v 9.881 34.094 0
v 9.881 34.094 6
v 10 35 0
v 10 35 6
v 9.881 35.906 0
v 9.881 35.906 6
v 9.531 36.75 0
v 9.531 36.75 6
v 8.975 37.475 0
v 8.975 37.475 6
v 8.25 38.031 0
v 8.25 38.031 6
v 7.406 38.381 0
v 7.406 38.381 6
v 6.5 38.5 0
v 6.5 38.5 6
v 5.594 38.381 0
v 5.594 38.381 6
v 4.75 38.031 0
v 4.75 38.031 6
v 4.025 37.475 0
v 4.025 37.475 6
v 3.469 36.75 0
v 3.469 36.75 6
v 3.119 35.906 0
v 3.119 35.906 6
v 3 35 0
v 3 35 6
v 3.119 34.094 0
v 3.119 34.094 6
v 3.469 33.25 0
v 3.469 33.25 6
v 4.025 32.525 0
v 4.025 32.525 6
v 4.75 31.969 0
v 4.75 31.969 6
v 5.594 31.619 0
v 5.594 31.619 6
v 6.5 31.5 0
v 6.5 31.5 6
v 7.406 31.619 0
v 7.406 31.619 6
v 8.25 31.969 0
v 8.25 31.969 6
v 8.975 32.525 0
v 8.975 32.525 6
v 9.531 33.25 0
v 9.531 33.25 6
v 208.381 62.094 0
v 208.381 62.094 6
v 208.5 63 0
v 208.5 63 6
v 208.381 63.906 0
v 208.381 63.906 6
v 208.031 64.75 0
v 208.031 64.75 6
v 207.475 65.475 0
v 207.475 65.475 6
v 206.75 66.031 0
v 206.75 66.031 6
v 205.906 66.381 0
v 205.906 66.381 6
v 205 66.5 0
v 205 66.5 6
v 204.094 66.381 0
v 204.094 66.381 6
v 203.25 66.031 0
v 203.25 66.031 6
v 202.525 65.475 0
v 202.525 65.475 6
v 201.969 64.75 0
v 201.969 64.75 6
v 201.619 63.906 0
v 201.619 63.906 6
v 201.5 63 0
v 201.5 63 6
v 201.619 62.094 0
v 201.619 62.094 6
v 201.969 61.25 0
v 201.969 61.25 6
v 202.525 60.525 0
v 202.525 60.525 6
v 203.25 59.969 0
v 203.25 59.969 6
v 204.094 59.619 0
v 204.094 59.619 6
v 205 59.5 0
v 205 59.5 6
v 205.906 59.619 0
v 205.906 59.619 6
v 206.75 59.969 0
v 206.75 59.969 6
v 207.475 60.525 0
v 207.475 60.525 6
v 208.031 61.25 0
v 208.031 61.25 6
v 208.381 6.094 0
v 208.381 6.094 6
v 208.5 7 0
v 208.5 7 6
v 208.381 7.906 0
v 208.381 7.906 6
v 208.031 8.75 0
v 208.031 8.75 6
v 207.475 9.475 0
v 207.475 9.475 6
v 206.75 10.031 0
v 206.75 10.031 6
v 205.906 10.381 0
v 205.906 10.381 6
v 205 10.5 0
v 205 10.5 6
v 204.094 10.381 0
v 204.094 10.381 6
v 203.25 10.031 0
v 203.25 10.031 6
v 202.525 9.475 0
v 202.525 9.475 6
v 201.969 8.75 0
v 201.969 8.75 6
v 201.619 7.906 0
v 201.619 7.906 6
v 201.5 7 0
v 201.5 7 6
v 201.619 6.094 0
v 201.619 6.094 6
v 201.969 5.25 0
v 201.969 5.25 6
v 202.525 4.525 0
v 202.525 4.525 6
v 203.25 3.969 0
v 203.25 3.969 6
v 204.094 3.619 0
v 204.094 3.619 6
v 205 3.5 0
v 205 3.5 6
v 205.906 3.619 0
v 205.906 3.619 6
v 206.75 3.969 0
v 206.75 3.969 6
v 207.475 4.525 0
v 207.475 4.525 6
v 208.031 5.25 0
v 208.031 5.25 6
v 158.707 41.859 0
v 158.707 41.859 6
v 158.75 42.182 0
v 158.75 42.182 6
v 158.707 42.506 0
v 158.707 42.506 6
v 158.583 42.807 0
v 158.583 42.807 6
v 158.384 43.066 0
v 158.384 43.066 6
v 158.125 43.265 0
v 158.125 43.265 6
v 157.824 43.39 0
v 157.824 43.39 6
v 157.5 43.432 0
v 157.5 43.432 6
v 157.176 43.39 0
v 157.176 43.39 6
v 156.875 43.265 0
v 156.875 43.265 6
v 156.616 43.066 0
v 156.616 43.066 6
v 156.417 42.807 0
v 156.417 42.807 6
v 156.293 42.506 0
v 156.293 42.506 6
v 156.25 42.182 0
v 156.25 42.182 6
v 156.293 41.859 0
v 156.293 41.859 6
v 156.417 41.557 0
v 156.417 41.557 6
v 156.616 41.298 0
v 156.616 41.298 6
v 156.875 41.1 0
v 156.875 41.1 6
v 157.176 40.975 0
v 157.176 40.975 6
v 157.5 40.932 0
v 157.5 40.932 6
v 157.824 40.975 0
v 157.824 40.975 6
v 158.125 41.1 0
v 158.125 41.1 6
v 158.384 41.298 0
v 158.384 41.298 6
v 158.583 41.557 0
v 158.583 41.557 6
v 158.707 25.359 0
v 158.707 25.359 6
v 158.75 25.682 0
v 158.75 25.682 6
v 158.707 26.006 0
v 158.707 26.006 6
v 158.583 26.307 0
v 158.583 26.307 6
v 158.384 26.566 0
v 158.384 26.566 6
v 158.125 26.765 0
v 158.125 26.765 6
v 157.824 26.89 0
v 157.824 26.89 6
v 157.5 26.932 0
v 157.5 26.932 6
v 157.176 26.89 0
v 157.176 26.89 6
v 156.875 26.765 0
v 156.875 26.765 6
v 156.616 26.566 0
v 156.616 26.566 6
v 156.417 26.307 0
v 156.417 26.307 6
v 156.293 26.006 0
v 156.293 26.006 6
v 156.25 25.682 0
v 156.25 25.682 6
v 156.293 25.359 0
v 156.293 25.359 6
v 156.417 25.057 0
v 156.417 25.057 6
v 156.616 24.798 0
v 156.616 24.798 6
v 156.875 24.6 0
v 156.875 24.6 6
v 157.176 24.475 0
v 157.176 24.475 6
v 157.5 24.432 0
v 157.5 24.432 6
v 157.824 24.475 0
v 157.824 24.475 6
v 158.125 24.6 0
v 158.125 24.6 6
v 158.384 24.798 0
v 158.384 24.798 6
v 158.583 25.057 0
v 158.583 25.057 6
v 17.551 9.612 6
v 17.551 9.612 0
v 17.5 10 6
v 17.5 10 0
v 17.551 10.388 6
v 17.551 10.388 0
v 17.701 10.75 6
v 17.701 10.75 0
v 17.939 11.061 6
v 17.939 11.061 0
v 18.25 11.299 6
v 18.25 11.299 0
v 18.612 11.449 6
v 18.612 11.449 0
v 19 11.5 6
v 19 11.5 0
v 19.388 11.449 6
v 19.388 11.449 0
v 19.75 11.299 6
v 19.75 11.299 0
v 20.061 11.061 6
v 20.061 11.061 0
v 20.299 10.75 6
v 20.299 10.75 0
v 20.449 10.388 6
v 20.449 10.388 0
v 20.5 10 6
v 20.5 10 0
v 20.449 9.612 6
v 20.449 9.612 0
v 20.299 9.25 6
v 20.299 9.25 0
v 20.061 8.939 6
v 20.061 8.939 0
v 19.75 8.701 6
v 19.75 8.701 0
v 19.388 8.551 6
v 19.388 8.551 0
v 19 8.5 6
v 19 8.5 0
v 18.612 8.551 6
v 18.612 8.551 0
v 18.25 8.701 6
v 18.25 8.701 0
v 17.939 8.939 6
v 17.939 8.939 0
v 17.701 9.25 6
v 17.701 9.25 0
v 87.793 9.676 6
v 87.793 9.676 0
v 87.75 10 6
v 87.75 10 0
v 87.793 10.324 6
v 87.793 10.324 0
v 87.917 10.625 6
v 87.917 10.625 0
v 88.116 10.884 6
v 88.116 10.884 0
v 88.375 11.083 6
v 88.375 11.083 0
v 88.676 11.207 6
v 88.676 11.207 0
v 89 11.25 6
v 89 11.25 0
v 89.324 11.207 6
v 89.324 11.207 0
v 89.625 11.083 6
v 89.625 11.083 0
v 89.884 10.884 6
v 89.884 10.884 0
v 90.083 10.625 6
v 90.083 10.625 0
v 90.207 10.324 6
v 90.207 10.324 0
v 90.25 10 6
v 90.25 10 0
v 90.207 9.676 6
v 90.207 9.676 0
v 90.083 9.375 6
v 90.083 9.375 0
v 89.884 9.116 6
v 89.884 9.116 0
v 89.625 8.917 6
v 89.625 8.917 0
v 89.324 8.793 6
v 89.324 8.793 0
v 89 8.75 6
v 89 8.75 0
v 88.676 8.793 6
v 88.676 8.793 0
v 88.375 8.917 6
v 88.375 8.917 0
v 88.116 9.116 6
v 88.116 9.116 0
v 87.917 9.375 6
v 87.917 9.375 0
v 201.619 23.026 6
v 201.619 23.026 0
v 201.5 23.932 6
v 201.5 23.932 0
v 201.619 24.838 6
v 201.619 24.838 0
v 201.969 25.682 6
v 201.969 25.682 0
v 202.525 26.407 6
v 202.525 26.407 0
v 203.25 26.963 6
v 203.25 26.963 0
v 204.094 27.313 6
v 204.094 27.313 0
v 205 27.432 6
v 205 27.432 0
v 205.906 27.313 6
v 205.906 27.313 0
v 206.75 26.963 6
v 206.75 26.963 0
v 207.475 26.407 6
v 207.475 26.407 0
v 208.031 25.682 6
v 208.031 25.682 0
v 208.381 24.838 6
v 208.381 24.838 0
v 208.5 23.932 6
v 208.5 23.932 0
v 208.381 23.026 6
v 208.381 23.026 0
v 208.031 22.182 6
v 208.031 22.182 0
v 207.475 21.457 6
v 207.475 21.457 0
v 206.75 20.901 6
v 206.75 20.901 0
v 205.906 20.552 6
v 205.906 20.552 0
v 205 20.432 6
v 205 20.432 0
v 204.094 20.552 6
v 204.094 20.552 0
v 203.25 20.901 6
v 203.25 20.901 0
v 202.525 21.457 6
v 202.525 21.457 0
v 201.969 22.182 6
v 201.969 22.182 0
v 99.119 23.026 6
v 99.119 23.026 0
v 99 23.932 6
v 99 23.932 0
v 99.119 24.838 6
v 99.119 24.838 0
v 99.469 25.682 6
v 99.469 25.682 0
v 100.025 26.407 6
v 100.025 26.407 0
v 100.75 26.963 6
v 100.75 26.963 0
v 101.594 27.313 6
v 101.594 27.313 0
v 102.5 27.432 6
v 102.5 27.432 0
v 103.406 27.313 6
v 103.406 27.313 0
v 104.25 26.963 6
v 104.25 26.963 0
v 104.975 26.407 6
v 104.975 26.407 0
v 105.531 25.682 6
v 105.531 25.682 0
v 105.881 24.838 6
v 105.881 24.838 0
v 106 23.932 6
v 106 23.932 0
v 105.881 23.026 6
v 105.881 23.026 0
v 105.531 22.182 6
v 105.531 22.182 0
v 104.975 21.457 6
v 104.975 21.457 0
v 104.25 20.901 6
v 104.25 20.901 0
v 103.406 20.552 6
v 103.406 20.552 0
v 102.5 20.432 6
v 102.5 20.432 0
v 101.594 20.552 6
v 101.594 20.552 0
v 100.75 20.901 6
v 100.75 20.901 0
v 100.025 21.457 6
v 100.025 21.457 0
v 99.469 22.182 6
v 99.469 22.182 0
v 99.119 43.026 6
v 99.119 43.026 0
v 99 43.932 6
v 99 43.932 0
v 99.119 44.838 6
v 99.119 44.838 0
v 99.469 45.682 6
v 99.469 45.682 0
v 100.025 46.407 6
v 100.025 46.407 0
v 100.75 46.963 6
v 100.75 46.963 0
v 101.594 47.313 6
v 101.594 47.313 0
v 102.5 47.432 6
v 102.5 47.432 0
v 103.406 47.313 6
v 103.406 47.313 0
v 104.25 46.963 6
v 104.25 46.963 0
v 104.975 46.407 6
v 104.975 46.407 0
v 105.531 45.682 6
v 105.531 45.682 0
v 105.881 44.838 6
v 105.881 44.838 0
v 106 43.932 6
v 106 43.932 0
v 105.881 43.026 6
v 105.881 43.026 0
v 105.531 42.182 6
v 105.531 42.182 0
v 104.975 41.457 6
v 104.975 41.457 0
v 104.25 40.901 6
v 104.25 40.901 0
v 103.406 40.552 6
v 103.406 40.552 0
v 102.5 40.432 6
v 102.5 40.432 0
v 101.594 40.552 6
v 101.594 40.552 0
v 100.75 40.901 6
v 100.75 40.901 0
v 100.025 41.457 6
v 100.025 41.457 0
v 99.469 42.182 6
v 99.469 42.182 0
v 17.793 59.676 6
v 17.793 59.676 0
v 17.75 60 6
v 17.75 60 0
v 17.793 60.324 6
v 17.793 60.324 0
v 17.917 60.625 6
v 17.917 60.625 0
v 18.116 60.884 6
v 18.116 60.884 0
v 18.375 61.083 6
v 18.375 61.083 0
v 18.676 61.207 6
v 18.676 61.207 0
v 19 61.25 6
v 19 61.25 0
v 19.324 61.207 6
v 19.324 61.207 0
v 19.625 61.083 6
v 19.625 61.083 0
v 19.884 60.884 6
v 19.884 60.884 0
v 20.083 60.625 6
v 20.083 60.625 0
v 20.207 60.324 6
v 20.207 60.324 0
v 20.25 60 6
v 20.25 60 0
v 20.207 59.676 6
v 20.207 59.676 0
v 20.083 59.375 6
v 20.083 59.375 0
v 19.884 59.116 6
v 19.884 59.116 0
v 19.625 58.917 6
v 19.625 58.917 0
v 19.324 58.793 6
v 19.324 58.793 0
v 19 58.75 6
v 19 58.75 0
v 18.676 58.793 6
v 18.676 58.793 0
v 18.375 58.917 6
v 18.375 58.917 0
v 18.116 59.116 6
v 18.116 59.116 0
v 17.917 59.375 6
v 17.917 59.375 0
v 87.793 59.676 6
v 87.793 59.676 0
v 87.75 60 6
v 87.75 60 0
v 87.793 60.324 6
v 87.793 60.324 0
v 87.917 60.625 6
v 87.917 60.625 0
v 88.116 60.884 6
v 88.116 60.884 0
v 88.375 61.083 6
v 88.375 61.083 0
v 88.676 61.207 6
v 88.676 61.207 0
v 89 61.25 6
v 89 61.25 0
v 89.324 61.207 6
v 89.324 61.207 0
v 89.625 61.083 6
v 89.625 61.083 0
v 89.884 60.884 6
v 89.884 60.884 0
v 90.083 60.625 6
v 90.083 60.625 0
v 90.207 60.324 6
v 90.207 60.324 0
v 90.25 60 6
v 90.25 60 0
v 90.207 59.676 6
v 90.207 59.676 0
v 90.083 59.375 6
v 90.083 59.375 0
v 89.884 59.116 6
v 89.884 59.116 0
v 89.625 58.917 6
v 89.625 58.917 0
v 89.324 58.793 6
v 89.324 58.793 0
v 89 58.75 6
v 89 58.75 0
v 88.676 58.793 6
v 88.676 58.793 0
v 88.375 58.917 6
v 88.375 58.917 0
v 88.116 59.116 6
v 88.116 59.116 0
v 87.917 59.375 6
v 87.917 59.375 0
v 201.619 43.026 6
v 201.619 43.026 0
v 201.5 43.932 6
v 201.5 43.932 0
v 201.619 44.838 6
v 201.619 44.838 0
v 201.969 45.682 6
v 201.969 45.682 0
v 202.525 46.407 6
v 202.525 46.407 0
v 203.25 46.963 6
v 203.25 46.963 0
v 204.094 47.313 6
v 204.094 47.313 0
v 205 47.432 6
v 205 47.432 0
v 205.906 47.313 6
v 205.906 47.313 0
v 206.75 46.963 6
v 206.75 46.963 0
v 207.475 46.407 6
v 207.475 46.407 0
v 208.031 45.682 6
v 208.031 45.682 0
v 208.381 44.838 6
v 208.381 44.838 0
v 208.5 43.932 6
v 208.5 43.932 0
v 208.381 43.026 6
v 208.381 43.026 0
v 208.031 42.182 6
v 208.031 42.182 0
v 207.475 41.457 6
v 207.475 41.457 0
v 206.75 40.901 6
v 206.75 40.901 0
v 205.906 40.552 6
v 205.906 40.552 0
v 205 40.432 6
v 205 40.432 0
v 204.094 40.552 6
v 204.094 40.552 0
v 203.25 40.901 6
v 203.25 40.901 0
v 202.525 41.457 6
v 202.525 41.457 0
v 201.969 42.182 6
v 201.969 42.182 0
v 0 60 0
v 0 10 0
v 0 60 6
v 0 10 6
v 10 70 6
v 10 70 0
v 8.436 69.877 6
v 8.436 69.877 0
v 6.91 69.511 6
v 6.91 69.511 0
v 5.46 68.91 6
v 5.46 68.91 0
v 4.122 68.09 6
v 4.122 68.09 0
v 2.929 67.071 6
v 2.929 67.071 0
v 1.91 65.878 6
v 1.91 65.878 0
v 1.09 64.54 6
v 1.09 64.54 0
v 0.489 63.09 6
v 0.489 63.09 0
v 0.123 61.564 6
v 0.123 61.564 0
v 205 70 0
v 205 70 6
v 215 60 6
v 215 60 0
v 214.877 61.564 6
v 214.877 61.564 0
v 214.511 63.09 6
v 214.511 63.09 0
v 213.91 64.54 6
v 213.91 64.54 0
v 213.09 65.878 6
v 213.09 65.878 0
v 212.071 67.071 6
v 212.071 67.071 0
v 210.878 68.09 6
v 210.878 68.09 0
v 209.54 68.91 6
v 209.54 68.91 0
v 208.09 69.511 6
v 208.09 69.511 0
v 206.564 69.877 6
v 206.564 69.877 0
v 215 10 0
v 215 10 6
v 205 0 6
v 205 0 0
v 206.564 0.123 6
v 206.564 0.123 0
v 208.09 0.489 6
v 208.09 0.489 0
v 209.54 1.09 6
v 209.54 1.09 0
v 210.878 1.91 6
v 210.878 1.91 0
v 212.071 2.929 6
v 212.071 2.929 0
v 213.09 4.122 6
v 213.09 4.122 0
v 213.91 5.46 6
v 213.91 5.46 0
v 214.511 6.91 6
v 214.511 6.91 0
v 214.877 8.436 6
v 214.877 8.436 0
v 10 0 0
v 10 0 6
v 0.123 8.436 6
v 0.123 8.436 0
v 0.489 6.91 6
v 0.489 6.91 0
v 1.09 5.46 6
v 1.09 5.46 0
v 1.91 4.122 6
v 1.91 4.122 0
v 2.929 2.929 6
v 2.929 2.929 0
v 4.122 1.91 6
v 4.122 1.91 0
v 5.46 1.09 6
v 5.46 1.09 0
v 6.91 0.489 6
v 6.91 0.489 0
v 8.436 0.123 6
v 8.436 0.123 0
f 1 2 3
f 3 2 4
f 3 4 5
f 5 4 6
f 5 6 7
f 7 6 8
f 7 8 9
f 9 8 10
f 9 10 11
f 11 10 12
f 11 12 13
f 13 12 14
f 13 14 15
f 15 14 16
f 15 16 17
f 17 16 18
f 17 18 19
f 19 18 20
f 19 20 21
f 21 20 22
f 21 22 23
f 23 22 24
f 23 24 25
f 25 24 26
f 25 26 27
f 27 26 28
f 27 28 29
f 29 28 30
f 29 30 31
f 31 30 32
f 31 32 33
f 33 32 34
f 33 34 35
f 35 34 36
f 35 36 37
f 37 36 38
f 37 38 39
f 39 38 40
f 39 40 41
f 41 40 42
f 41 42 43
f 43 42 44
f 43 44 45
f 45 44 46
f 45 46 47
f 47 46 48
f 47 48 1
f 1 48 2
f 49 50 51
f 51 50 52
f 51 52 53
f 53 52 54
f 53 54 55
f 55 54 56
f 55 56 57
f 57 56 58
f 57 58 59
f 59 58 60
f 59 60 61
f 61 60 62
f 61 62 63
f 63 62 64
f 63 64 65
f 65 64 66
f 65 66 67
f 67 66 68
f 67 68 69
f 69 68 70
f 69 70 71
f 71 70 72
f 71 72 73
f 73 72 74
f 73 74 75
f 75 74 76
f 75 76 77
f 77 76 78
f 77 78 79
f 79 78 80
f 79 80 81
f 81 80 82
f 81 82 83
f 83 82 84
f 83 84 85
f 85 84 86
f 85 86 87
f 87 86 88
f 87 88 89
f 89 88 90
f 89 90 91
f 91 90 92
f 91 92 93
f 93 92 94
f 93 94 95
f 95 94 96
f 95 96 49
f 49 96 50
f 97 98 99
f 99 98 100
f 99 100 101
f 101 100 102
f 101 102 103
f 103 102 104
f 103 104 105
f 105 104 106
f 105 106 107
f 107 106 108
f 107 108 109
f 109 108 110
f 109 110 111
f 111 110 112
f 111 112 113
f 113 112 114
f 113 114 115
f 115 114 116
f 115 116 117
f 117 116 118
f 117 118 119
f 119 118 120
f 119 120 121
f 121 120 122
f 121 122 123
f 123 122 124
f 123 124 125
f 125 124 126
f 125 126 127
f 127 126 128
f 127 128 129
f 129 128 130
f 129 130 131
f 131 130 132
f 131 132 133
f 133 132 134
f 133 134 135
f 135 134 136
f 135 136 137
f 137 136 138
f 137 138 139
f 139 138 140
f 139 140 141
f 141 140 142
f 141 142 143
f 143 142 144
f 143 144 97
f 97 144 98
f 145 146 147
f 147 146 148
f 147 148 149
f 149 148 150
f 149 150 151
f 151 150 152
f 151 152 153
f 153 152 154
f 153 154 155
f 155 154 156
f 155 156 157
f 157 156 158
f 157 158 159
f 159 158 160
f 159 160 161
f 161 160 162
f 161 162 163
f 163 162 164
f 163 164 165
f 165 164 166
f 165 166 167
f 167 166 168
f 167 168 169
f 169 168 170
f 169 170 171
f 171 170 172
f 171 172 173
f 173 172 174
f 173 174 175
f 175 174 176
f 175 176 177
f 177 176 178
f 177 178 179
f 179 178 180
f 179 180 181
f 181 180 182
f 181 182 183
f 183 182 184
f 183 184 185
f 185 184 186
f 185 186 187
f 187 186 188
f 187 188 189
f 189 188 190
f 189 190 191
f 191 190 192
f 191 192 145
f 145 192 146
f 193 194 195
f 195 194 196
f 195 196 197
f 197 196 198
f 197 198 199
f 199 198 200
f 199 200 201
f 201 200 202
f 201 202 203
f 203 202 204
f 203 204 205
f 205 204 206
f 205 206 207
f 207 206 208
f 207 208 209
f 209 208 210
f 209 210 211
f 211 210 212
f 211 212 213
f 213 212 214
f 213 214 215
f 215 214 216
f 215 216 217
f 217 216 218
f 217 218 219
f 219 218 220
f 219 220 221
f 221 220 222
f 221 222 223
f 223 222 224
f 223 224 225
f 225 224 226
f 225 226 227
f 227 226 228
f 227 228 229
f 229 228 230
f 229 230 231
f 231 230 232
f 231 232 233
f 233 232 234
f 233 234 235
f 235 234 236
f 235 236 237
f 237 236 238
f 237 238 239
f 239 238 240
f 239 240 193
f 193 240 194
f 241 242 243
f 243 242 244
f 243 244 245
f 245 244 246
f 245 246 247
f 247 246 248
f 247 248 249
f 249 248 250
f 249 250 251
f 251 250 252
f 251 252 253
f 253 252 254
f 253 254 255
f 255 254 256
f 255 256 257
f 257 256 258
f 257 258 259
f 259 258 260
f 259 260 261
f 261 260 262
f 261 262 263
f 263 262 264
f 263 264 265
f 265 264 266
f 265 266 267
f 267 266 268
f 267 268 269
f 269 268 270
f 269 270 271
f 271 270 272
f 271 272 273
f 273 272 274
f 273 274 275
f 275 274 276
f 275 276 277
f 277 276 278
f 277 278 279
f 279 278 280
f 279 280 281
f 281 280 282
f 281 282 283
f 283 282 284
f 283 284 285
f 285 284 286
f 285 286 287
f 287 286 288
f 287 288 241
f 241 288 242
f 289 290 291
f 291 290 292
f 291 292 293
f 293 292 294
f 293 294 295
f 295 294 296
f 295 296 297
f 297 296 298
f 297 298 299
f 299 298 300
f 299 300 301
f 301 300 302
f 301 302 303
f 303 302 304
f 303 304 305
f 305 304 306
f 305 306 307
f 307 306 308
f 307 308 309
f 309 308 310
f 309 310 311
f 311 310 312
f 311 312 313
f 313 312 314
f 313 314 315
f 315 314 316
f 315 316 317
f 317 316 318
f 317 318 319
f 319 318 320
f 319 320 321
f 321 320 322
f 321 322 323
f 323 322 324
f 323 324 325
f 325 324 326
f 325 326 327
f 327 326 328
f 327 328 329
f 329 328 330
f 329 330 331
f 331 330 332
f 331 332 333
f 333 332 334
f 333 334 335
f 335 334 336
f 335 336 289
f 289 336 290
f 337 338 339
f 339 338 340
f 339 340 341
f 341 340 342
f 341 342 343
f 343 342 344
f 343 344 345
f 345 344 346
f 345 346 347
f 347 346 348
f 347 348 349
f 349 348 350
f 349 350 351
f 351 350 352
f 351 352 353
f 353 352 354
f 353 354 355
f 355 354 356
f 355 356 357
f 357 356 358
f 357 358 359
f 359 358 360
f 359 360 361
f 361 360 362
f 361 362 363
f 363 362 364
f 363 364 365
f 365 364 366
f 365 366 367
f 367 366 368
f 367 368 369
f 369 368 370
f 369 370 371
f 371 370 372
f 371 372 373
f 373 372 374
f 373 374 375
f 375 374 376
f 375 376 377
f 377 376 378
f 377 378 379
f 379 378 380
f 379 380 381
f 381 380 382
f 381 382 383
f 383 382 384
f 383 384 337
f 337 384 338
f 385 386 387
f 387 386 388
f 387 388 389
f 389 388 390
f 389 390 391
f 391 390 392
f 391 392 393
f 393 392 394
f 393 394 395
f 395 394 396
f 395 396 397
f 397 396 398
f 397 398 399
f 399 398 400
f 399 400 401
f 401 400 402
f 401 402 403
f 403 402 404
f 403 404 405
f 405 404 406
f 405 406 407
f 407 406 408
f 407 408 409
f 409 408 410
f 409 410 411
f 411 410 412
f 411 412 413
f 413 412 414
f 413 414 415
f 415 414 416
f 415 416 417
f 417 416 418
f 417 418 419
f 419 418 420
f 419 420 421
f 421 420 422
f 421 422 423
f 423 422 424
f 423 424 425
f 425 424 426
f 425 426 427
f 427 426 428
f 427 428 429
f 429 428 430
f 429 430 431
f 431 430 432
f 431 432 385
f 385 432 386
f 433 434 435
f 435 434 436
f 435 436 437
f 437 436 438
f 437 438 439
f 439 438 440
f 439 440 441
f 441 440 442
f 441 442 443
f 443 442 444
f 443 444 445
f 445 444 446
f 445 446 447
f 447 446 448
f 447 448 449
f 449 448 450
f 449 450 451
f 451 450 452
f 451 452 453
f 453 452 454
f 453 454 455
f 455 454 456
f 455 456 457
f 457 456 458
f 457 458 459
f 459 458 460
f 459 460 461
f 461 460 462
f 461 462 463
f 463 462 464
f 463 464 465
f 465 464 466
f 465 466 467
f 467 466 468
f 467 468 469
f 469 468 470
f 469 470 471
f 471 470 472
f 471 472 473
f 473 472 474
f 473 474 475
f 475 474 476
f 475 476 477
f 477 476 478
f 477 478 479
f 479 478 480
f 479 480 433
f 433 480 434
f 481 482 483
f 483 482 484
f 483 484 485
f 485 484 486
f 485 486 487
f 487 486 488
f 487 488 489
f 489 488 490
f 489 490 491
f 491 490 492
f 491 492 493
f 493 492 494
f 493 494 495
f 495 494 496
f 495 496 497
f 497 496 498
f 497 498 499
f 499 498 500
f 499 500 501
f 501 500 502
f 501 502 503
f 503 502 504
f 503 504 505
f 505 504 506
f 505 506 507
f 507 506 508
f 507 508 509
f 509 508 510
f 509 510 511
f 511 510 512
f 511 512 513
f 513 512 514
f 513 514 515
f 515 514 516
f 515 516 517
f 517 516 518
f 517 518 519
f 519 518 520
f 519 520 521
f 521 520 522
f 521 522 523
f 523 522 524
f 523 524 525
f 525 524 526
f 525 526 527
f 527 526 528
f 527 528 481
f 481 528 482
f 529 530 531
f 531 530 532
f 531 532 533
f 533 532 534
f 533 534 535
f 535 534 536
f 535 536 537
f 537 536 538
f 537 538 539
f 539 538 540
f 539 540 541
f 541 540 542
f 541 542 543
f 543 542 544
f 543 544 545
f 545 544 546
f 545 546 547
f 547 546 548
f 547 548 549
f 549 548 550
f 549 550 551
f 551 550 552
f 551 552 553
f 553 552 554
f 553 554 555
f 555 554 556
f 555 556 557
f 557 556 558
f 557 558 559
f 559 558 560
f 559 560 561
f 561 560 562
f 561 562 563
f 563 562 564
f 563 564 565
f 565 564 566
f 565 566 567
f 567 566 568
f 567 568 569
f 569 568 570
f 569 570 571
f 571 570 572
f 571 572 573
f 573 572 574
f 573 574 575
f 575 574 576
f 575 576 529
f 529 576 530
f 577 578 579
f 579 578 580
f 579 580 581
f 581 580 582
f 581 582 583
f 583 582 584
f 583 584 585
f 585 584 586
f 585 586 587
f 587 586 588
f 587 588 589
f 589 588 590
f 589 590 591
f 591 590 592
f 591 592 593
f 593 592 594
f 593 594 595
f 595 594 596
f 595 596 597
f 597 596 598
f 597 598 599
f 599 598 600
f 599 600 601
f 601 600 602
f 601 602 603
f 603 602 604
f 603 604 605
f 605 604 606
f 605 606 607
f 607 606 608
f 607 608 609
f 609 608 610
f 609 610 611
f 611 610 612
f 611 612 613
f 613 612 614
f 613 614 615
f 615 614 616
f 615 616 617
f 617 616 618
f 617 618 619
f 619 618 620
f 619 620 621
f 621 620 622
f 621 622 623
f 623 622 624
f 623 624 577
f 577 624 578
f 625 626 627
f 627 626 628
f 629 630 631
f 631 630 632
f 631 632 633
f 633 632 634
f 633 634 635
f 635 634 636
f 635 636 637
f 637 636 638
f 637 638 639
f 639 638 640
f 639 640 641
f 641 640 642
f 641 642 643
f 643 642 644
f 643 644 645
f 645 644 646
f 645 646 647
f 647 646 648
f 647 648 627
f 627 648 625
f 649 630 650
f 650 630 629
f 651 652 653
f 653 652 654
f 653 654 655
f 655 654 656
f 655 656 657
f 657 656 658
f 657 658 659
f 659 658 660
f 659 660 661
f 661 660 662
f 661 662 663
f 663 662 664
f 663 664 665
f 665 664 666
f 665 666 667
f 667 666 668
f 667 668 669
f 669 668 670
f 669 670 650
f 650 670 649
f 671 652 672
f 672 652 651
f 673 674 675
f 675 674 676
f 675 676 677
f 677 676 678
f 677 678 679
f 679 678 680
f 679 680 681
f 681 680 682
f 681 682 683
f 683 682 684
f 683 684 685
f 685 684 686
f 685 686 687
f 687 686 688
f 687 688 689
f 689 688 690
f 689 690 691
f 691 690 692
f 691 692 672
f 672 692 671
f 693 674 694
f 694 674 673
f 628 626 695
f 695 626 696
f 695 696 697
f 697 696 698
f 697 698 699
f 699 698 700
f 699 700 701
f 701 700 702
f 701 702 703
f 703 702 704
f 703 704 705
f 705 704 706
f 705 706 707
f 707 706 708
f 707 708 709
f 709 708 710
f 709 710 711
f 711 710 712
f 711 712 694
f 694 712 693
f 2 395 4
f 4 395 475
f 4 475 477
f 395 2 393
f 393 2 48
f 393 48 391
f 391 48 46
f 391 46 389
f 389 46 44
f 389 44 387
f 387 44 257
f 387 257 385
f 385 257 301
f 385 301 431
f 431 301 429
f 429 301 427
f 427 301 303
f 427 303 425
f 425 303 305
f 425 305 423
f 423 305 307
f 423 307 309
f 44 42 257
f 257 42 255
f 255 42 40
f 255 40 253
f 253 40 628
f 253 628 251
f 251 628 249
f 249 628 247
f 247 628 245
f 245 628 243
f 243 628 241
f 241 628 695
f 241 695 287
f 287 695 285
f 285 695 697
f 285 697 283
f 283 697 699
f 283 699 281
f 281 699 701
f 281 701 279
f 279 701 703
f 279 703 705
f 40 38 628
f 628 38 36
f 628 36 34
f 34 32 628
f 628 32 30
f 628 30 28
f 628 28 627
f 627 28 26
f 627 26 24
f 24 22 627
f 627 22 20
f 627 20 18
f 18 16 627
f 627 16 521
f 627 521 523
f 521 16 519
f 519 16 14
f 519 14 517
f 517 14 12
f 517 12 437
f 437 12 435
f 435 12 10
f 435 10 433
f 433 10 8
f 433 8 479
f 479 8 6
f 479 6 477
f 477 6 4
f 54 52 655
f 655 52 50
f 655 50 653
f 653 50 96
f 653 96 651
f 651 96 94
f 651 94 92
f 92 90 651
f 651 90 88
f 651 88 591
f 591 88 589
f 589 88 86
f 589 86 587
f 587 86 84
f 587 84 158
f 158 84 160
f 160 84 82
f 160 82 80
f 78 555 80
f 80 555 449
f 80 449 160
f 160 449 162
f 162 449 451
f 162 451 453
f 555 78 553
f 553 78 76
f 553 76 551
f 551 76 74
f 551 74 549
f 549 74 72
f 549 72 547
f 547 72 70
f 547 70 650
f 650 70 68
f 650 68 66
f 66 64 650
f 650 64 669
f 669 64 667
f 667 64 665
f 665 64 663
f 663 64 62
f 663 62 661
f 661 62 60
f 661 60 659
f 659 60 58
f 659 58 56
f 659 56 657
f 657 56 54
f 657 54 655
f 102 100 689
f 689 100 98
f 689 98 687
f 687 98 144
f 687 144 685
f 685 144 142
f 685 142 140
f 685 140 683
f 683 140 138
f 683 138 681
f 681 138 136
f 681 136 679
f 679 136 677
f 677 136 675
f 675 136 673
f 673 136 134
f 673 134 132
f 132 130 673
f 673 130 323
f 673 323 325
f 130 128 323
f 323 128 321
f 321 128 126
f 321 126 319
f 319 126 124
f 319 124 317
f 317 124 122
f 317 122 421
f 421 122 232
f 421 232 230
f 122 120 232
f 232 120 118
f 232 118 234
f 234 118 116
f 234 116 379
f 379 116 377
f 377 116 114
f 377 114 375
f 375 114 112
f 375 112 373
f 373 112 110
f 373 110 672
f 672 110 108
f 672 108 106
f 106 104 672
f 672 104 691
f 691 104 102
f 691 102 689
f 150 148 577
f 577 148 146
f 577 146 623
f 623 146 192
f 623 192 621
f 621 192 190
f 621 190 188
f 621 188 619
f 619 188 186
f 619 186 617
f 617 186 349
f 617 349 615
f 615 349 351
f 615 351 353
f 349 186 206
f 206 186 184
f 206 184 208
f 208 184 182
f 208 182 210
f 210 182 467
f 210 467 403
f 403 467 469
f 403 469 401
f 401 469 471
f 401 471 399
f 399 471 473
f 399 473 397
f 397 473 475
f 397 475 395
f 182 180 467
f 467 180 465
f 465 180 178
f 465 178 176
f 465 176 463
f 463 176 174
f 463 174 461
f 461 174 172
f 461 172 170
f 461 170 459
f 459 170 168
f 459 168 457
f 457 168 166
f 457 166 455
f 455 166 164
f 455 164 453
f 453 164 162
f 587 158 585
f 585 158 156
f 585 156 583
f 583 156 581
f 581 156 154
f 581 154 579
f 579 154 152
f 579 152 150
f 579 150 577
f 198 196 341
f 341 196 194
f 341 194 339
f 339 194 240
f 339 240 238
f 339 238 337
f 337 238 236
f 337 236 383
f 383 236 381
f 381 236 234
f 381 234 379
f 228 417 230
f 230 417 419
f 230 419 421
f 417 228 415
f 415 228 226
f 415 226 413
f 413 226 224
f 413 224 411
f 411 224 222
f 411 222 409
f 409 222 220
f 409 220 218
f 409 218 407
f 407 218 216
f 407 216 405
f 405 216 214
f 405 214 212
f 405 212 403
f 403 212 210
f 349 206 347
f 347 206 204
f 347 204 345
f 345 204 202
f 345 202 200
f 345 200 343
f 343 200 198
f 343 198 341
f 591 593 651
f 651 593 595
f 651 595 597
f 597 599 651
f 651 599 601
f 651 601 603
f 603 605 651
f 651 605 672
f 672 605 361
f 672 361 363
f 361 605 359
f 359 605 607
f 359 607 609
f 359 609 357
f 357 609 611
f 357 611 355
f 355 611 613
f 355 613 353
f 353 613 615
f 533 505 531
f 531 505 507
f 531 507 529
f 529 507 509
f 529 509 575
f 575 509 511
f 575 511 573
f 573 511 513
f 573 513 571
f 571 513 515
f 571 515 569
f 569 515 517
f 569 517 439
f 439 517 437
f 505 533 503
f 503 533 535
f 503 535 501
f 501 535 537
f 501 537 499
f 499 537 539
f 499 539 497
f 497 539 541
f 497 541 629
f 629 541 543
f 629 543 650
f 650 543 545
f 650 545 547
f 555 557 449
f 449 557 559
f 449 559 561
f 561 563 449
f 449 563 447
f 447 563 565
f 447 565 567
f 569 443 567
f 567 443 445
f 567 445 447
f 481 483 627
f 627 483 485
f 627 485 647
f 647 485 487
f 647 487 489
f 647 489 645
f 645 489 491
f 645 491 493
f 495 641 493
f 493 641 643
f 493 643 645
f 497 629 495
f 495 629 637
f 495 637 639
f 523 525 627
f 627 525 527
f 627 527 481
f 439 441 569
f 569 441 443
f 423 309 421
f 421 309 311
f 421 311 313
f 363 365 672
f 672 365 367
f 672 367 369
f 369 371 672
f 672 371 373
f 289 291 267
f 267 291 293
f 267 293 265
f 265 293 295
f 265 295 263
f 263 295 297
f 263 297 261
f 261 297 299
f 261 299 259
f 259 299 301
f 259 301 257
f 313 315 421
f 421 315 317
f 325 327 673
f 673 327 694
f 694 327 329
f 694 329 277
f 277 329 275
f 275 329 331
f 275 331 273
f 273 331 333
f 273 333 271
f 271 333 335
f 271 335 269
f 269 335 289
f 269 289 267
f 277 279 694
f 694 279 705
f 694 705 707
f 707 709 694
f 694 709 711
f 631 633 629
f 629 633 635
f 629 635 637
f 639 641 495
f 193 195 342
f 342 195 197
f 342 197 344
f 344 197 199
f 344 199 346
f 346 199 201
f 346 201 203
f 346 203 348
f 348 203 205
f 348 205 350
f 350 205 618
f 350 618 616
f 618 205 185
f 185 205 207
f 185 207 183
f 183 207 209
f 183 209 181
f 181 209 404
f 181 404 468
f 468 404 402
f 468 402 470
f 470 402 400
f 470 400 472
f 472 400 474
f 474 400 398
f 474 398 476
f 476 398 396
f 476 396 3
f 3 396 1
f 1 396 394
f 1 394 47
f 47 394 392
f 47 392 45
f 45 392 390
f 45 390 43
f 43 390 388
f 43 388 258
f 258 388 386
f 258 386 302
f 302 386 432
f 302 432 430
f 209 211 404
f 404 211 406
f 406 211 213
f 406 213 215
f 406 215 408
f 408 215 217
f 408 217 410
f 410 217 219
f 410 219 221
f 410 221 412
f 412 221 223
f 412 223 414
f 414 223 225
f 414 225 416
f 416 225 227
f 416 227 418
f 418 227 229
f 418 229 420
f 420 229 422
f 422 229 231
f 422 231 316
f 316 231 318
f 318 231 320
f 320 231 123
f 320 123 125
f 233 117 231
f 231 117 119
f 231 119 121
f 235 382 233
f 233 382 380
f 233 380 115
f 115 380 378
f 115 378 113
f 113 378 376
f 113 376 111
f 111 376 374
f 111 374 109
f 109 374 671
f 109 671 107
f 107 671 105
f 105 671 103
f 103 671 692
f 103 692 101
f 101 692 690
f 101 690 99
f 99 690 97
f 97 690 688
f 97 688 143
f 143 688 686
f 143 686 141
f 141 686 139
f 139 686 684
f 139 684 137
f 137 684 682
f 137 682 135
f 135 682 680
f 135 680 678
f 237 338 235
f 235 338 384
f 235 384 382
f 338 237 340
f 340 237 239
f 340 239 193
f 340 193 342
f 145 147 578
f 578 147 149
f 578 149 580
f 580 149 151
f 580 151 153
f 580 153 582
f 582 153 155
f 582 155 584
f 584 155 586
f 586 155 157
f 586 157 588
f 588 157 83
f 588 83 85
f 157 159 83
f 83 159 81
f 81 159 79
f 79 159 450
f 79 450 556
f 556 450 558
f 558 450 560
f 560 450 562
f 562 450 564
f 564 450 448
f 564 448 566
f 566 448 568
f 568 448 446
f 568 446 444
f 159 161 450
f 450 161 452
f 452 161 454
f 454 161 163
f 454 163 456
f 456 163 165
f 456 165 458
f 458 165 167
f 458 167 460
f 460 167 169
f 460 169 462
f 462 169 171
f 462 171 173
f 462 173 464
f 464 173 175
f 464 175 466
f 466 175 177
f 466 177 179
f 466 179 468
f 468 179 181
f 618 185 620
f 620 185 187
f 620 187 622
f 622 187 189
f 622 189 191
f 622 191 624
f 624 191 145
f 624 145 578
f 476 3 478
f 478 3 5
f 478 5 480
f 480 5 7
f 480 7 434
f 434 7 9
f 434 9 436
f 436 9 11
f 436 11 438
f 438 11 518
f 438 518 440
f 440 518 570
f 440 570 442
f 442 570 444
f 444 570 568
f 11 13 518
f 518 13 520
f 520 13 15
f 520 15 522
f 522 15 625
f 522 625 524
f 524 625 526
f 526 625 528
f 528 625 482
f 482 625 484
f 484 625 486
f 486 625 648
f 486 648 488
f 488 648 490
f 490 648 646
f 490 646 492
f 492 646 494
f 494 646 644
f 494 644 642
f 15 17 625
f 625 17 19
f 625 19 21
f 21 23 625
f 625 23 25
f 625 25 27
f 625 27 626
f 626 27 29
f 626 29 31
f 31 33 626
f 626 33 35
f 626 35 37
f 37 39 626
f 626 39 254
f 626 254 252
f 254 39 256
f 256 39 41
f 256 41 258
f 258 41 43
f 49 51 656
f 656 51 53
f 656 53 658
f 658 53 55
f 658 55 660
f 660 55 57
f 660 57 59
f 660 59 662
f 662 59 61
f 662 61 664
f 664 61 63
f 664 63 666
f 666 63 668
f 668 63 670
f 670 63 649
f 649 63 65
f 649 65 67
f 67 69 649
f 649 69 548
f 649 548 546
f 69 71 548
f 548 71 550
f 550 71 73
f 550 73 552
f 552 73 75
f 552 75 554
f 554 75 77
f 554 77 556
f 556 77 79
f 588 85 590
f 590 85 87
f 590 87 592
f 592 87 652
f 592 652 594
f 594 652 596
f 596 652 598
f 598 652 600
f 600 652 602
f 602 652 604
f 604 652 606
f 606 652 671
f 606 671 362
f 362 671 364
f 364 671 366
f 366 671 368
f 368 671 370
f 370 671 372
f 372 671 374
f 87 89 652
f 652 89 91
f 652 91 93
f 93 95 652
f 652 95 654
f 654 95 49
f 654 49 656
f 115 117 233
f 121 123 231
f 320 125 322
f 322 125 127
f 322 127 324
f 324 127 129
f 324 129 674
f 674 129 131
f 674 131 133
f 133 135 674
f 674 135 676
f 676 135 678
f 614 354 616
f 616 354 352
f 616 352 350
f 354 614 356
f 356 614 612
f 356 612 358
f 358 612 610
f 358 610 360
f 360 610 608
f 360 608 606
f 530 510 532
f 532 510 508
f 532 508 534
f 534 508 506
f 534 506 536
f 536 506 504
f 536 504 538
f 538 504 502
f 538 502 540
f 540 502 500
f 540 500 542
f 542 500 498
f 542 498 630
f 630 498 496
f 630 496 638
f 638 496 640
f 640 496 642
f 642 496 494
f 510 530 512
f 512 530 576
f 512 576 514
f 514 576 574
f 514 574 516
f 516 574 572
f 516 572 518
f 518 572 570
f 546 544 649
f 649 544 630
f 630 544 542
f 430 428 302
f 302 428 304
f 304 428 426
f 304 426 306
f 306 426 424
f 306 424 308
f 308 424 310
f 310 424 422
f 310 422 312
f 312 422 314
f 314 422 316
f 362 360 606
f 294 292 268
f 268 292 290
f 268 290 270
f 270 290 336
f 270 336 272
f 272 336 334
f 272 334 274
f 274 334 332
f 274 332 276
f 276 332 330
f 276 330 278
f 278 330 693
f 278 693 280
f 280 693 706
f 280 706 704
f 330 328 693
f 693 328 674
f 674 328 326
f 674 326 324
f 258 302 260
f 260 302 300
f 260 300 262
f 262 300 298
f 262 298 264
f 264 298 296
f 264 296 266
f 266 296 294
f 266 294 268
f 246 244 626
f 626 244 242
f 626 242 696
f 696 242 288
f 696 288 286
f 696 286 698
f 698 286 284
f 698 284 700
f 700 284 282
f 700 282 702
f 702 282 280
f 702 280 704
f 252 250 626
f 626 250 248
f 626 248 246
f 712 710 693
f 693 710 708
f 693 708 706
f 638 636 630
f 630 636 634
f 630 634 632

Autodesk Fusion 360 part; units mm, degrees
sketch "Sketch1" plane through (0, 0, 0) normal (0, 0, 1) x (1, 0, 0)
  line L0 (10, 0) -> (205, 0)
  line L1 (215, 10) -> (215, 60)
  line L2 (205, 70) -> (10, 70)
  line L3 (0, 60) -> (0, 10)
  arc A0 (10, 70) -> (0, 60) centre (10, 60) ccw
  arc A1 (0, 10) -> (10, 0) centre (10, 10) ccw
  arc A2 (215, 60) -> (205, 70) centre (205, 60) ccw
  arc A3 (205, 0) -> (215, 10) centre (205, 10) ccw
  line L4 (205, 70) -> (205, 0)
  circle A4 centre (205, 43.9323) radius 3.5
  circle A5 centre (205, 23.9323) radius 3.5
  line L5 (102.5, 70) -> (102.5, 0)
  line L6 (205, 43.9323) -> (102.5, 43.9323)
  line L7 (205, 23.9323) -> (102.5, 23.9323)
  circle A6 centre (102.5, 43.9323) radius 3.5
  circle A7 centre (102.5, 23.9323) radius 3.5
  line L8 (89, 60) -> (49, 60)
  line L9 (49, 60) -> (49, 10)
  line L10 (49, 10) -> (89, 10)
  line L11 (89, 10) -> (89, 60)
  line L12 (102.5, 35) -> (89, 35)
  line L13 (49, 52.5466) -> (19, 52.5466)
  line L14 (19, 52.5466) -> (19, 17.4534)
  line L15 (19, 17.4534) -> (49, 17.4534)
  line L16 (49, 17.4534) -> (49, 52.5466)
  line L17 (19, 35) -> (49, 35)
  line L18 (0, 0) -> (0, 24.1752)
  line L19 (0, 0) -> (-15.0158, 0)
  line L20 (89, 60) -> (19, 60)
  line L21 (19, 60) -> (19, 10)
  line L22 (19, 10) -> (89, 10)
  line L23 (89, 10) -> (89, 60)
  circle A8 centre (89, 60) radius 1.25
  circle A9 centre (89, 10) radius 1.25
  circle A10 centre (19, 10) radius 1.5
  circle A11 centre (19, 60) radius 1.25
  point P0 (215, 0)
  point P1 (215, 70)
  point P2 (0, 70)
  dimension "d1" = 215
  dimension "d2" = 70
  dimension "d3" = 10
  dimension "d4" = 10
  dimension "d5" = 10
  dimension "d6" = 10
  dimension "d7" = 10
  dimension "d8" = 7
  dimension "d9" = 7
  dimension "d10" = 20
  dimension "d11" = 102.5
  dimension "d12" = 7
  dimension "d13" = 7
  dimension "d14" = 40
  dimension "d15" = 50
  dimension "d16" = 90
  dimension "d17" = 13.5
  dimension "d18" = 30
  dimension "d19" = 90
  dimension "d20" = 2.5
  dimension "d21" = 2.5
  dimension "d22" = 3
  dimension "d23" = 2.5
extrude "Extrude1" add sketch "Sketch1" along normal blind 6 contours L8 L9 L10 L11 L16 L20 L22 L23 A8 A9 | L0 L2 L3 A0 A1 L5 A6 A7 L18 | L0 L4 A5 L5 L7 A7 | L1 A2 A3 L4 A4 A5 | L4 A4 A5 L5 L6 L7 A6 A7 | L2 L4 A4 L5 L6 A6 | L9 L15 L21 L22 A10 | L9 L13 L20 L21 A11 | L9 L14 L15 L16 L17 L21 | L9 L13 L14 L16 L17 L21
sketch "Sketch2" plane through (0, 0, 6) normal (0, 0, 1) x (-1, 0, 0)
  circle A0 centre (-19, -60) radius 1.25
  circle A1 centre (-102.5, -43.9323) radius 3.5
  circle A2 centre (-89, -60) radius 1.25
  circle A3 centre (-89, -10) radius 1.25
  circle A4 centre (-102.5, -23.9323) radius 3.5
  circle A5 centre (-19, -10) radius 1.5
  circle A6 centre (-205, -23.9323) radius 3.5
  circle A7 centre (-205, -43.9323) radius 3.5
  arc A8 (0, -10) -> (-10, 0) centre (-10, -10) ccw
  line L0 (-10, 0) -> (-205, 0)
  arc A9 (-205, 0) -> (-215, -10) centre (-205, -10) ccw
  line L1 (-215, -10) -> (-215, -60)
  arc A10 (-215, -60) -> (-205, -70) centre (-205, -60) ccw
  line L2 (-205, -70) -> (-10, -70)
  arc A11 (-10, -70) -> (0, -60) centre (-10, -60) ccw
  line L3 (0, -60) -> (0, -10)
  line L4 (-157.5, -70) -> (-157.5, 0)
  line L5 (-102.5, -43.9323) -> (-102.5, -23.9323)
  circle A12 centre (-157.5, -42.1823) radius 1.25
  circle A13 centre (-157.5, -25.6823) radius 1.25
  line L6 (-151.1278, -40.9323) -> (-166.7652, -40.9323)
  line L7 (-166.7652, -40.9323) -> (-166.7652, -26.9323)
  line L8 (-166.7652, -26.9323) -> (-151.1278, -26.9323)
  line L9 (-151.1278, -26.9323) -> (-151.1278, -40.9323)
  line L10 (-151.1278, -33.9323) -> (-102.5, -33.9323)
  dimension "d26" = 55
  dimension "d27" = 14
  dimension "d28" = 90
  dimension "d29" = 2.5
  dimension "d30" = 2.5
extrude "Extrude2" cut sketch "Sketch2" against normal blind 5 contours L4 A13 | L4 A13 | L4 A12 | L4 A12
sketch "Sketch3" plane through (0, 0, 6) normal (0, 0, 1) x (-1, 0, 0)
  circle A0 centre (-157.5, -42.1823) radius 1.25
  circle A1 centre (-157.5, -25.6823) radius 1.25
  circle A2 centre (-205, -43.9323) radius 3.5
  circle A3 centre (-19, -10) radius 1.5
  circle A4 centre (-89, -60) radius 1.25
  circle A5 centre (-89, -10) radius 1.25
  circle A6 centre (-102.5, -43.9323) radius 3.5
  circle A7 centre (-19, -60) radius 1.25
  circle A8 centre (-205, -23.9323) radius 3.5
  circle A9 centre (-102.5, -23.9323) radius 3.5
  arc A10 (0, -10) -> (-10, 0) centre (-10, -10) ccw
  line L0 (-10, 0) -> (-205, 0)
  arc A11 (-205, 0) -> (-215, -10) centre (-205, -10) ccw
  line L1 (-215, -10) -> (-215, -60)
  arc A12 (-215, -60) -> (-205, -70) centre (-205, -60) ccw
  line L2 (-205, -70) -> (-10, -70)
  arc A13 (-10, -70) -> (0, -60) centre (-10, -60) ccw
  line L3 (0, -60) -> (0, -10)
  line L4 (-6.5, -60) -> (-6.5, -10)
  circle A14 centre (-6.5, -35) radius 3.5
  line L5 (-10, -60) -> (-10, -10)
  line L6 (-6.5, -35) -> (0, -35)
  line L7 (-205, -70) -> (-205, 0)
  circle A15 centre (-205, -63) radius 3.5
  circle A16 centre (-205, -7) radius 3.5
  dimension "d33" = 7
  dimension "d36" = 7
  dimension "d37" = 7
  dimension "d38" = 7
  dimension "d39" = 7
extrude "Extrude3" cut sketch "Sketch3" against normal blind 7 contours L4 A14 L6 | L4 A14 L6 | L7 A15 | L7 A15 | L7 A16 | L7 A16 | L4 A14
extrude "Extrude4" cut 1 faces at (157.8221, 41.8565, 1) along direction (0, 0, -1) blind 5
extrude "Extrude5" cut 1 faces at (157.1946, 25.2747, 1) along direction (0, 0, -1) blind 5
